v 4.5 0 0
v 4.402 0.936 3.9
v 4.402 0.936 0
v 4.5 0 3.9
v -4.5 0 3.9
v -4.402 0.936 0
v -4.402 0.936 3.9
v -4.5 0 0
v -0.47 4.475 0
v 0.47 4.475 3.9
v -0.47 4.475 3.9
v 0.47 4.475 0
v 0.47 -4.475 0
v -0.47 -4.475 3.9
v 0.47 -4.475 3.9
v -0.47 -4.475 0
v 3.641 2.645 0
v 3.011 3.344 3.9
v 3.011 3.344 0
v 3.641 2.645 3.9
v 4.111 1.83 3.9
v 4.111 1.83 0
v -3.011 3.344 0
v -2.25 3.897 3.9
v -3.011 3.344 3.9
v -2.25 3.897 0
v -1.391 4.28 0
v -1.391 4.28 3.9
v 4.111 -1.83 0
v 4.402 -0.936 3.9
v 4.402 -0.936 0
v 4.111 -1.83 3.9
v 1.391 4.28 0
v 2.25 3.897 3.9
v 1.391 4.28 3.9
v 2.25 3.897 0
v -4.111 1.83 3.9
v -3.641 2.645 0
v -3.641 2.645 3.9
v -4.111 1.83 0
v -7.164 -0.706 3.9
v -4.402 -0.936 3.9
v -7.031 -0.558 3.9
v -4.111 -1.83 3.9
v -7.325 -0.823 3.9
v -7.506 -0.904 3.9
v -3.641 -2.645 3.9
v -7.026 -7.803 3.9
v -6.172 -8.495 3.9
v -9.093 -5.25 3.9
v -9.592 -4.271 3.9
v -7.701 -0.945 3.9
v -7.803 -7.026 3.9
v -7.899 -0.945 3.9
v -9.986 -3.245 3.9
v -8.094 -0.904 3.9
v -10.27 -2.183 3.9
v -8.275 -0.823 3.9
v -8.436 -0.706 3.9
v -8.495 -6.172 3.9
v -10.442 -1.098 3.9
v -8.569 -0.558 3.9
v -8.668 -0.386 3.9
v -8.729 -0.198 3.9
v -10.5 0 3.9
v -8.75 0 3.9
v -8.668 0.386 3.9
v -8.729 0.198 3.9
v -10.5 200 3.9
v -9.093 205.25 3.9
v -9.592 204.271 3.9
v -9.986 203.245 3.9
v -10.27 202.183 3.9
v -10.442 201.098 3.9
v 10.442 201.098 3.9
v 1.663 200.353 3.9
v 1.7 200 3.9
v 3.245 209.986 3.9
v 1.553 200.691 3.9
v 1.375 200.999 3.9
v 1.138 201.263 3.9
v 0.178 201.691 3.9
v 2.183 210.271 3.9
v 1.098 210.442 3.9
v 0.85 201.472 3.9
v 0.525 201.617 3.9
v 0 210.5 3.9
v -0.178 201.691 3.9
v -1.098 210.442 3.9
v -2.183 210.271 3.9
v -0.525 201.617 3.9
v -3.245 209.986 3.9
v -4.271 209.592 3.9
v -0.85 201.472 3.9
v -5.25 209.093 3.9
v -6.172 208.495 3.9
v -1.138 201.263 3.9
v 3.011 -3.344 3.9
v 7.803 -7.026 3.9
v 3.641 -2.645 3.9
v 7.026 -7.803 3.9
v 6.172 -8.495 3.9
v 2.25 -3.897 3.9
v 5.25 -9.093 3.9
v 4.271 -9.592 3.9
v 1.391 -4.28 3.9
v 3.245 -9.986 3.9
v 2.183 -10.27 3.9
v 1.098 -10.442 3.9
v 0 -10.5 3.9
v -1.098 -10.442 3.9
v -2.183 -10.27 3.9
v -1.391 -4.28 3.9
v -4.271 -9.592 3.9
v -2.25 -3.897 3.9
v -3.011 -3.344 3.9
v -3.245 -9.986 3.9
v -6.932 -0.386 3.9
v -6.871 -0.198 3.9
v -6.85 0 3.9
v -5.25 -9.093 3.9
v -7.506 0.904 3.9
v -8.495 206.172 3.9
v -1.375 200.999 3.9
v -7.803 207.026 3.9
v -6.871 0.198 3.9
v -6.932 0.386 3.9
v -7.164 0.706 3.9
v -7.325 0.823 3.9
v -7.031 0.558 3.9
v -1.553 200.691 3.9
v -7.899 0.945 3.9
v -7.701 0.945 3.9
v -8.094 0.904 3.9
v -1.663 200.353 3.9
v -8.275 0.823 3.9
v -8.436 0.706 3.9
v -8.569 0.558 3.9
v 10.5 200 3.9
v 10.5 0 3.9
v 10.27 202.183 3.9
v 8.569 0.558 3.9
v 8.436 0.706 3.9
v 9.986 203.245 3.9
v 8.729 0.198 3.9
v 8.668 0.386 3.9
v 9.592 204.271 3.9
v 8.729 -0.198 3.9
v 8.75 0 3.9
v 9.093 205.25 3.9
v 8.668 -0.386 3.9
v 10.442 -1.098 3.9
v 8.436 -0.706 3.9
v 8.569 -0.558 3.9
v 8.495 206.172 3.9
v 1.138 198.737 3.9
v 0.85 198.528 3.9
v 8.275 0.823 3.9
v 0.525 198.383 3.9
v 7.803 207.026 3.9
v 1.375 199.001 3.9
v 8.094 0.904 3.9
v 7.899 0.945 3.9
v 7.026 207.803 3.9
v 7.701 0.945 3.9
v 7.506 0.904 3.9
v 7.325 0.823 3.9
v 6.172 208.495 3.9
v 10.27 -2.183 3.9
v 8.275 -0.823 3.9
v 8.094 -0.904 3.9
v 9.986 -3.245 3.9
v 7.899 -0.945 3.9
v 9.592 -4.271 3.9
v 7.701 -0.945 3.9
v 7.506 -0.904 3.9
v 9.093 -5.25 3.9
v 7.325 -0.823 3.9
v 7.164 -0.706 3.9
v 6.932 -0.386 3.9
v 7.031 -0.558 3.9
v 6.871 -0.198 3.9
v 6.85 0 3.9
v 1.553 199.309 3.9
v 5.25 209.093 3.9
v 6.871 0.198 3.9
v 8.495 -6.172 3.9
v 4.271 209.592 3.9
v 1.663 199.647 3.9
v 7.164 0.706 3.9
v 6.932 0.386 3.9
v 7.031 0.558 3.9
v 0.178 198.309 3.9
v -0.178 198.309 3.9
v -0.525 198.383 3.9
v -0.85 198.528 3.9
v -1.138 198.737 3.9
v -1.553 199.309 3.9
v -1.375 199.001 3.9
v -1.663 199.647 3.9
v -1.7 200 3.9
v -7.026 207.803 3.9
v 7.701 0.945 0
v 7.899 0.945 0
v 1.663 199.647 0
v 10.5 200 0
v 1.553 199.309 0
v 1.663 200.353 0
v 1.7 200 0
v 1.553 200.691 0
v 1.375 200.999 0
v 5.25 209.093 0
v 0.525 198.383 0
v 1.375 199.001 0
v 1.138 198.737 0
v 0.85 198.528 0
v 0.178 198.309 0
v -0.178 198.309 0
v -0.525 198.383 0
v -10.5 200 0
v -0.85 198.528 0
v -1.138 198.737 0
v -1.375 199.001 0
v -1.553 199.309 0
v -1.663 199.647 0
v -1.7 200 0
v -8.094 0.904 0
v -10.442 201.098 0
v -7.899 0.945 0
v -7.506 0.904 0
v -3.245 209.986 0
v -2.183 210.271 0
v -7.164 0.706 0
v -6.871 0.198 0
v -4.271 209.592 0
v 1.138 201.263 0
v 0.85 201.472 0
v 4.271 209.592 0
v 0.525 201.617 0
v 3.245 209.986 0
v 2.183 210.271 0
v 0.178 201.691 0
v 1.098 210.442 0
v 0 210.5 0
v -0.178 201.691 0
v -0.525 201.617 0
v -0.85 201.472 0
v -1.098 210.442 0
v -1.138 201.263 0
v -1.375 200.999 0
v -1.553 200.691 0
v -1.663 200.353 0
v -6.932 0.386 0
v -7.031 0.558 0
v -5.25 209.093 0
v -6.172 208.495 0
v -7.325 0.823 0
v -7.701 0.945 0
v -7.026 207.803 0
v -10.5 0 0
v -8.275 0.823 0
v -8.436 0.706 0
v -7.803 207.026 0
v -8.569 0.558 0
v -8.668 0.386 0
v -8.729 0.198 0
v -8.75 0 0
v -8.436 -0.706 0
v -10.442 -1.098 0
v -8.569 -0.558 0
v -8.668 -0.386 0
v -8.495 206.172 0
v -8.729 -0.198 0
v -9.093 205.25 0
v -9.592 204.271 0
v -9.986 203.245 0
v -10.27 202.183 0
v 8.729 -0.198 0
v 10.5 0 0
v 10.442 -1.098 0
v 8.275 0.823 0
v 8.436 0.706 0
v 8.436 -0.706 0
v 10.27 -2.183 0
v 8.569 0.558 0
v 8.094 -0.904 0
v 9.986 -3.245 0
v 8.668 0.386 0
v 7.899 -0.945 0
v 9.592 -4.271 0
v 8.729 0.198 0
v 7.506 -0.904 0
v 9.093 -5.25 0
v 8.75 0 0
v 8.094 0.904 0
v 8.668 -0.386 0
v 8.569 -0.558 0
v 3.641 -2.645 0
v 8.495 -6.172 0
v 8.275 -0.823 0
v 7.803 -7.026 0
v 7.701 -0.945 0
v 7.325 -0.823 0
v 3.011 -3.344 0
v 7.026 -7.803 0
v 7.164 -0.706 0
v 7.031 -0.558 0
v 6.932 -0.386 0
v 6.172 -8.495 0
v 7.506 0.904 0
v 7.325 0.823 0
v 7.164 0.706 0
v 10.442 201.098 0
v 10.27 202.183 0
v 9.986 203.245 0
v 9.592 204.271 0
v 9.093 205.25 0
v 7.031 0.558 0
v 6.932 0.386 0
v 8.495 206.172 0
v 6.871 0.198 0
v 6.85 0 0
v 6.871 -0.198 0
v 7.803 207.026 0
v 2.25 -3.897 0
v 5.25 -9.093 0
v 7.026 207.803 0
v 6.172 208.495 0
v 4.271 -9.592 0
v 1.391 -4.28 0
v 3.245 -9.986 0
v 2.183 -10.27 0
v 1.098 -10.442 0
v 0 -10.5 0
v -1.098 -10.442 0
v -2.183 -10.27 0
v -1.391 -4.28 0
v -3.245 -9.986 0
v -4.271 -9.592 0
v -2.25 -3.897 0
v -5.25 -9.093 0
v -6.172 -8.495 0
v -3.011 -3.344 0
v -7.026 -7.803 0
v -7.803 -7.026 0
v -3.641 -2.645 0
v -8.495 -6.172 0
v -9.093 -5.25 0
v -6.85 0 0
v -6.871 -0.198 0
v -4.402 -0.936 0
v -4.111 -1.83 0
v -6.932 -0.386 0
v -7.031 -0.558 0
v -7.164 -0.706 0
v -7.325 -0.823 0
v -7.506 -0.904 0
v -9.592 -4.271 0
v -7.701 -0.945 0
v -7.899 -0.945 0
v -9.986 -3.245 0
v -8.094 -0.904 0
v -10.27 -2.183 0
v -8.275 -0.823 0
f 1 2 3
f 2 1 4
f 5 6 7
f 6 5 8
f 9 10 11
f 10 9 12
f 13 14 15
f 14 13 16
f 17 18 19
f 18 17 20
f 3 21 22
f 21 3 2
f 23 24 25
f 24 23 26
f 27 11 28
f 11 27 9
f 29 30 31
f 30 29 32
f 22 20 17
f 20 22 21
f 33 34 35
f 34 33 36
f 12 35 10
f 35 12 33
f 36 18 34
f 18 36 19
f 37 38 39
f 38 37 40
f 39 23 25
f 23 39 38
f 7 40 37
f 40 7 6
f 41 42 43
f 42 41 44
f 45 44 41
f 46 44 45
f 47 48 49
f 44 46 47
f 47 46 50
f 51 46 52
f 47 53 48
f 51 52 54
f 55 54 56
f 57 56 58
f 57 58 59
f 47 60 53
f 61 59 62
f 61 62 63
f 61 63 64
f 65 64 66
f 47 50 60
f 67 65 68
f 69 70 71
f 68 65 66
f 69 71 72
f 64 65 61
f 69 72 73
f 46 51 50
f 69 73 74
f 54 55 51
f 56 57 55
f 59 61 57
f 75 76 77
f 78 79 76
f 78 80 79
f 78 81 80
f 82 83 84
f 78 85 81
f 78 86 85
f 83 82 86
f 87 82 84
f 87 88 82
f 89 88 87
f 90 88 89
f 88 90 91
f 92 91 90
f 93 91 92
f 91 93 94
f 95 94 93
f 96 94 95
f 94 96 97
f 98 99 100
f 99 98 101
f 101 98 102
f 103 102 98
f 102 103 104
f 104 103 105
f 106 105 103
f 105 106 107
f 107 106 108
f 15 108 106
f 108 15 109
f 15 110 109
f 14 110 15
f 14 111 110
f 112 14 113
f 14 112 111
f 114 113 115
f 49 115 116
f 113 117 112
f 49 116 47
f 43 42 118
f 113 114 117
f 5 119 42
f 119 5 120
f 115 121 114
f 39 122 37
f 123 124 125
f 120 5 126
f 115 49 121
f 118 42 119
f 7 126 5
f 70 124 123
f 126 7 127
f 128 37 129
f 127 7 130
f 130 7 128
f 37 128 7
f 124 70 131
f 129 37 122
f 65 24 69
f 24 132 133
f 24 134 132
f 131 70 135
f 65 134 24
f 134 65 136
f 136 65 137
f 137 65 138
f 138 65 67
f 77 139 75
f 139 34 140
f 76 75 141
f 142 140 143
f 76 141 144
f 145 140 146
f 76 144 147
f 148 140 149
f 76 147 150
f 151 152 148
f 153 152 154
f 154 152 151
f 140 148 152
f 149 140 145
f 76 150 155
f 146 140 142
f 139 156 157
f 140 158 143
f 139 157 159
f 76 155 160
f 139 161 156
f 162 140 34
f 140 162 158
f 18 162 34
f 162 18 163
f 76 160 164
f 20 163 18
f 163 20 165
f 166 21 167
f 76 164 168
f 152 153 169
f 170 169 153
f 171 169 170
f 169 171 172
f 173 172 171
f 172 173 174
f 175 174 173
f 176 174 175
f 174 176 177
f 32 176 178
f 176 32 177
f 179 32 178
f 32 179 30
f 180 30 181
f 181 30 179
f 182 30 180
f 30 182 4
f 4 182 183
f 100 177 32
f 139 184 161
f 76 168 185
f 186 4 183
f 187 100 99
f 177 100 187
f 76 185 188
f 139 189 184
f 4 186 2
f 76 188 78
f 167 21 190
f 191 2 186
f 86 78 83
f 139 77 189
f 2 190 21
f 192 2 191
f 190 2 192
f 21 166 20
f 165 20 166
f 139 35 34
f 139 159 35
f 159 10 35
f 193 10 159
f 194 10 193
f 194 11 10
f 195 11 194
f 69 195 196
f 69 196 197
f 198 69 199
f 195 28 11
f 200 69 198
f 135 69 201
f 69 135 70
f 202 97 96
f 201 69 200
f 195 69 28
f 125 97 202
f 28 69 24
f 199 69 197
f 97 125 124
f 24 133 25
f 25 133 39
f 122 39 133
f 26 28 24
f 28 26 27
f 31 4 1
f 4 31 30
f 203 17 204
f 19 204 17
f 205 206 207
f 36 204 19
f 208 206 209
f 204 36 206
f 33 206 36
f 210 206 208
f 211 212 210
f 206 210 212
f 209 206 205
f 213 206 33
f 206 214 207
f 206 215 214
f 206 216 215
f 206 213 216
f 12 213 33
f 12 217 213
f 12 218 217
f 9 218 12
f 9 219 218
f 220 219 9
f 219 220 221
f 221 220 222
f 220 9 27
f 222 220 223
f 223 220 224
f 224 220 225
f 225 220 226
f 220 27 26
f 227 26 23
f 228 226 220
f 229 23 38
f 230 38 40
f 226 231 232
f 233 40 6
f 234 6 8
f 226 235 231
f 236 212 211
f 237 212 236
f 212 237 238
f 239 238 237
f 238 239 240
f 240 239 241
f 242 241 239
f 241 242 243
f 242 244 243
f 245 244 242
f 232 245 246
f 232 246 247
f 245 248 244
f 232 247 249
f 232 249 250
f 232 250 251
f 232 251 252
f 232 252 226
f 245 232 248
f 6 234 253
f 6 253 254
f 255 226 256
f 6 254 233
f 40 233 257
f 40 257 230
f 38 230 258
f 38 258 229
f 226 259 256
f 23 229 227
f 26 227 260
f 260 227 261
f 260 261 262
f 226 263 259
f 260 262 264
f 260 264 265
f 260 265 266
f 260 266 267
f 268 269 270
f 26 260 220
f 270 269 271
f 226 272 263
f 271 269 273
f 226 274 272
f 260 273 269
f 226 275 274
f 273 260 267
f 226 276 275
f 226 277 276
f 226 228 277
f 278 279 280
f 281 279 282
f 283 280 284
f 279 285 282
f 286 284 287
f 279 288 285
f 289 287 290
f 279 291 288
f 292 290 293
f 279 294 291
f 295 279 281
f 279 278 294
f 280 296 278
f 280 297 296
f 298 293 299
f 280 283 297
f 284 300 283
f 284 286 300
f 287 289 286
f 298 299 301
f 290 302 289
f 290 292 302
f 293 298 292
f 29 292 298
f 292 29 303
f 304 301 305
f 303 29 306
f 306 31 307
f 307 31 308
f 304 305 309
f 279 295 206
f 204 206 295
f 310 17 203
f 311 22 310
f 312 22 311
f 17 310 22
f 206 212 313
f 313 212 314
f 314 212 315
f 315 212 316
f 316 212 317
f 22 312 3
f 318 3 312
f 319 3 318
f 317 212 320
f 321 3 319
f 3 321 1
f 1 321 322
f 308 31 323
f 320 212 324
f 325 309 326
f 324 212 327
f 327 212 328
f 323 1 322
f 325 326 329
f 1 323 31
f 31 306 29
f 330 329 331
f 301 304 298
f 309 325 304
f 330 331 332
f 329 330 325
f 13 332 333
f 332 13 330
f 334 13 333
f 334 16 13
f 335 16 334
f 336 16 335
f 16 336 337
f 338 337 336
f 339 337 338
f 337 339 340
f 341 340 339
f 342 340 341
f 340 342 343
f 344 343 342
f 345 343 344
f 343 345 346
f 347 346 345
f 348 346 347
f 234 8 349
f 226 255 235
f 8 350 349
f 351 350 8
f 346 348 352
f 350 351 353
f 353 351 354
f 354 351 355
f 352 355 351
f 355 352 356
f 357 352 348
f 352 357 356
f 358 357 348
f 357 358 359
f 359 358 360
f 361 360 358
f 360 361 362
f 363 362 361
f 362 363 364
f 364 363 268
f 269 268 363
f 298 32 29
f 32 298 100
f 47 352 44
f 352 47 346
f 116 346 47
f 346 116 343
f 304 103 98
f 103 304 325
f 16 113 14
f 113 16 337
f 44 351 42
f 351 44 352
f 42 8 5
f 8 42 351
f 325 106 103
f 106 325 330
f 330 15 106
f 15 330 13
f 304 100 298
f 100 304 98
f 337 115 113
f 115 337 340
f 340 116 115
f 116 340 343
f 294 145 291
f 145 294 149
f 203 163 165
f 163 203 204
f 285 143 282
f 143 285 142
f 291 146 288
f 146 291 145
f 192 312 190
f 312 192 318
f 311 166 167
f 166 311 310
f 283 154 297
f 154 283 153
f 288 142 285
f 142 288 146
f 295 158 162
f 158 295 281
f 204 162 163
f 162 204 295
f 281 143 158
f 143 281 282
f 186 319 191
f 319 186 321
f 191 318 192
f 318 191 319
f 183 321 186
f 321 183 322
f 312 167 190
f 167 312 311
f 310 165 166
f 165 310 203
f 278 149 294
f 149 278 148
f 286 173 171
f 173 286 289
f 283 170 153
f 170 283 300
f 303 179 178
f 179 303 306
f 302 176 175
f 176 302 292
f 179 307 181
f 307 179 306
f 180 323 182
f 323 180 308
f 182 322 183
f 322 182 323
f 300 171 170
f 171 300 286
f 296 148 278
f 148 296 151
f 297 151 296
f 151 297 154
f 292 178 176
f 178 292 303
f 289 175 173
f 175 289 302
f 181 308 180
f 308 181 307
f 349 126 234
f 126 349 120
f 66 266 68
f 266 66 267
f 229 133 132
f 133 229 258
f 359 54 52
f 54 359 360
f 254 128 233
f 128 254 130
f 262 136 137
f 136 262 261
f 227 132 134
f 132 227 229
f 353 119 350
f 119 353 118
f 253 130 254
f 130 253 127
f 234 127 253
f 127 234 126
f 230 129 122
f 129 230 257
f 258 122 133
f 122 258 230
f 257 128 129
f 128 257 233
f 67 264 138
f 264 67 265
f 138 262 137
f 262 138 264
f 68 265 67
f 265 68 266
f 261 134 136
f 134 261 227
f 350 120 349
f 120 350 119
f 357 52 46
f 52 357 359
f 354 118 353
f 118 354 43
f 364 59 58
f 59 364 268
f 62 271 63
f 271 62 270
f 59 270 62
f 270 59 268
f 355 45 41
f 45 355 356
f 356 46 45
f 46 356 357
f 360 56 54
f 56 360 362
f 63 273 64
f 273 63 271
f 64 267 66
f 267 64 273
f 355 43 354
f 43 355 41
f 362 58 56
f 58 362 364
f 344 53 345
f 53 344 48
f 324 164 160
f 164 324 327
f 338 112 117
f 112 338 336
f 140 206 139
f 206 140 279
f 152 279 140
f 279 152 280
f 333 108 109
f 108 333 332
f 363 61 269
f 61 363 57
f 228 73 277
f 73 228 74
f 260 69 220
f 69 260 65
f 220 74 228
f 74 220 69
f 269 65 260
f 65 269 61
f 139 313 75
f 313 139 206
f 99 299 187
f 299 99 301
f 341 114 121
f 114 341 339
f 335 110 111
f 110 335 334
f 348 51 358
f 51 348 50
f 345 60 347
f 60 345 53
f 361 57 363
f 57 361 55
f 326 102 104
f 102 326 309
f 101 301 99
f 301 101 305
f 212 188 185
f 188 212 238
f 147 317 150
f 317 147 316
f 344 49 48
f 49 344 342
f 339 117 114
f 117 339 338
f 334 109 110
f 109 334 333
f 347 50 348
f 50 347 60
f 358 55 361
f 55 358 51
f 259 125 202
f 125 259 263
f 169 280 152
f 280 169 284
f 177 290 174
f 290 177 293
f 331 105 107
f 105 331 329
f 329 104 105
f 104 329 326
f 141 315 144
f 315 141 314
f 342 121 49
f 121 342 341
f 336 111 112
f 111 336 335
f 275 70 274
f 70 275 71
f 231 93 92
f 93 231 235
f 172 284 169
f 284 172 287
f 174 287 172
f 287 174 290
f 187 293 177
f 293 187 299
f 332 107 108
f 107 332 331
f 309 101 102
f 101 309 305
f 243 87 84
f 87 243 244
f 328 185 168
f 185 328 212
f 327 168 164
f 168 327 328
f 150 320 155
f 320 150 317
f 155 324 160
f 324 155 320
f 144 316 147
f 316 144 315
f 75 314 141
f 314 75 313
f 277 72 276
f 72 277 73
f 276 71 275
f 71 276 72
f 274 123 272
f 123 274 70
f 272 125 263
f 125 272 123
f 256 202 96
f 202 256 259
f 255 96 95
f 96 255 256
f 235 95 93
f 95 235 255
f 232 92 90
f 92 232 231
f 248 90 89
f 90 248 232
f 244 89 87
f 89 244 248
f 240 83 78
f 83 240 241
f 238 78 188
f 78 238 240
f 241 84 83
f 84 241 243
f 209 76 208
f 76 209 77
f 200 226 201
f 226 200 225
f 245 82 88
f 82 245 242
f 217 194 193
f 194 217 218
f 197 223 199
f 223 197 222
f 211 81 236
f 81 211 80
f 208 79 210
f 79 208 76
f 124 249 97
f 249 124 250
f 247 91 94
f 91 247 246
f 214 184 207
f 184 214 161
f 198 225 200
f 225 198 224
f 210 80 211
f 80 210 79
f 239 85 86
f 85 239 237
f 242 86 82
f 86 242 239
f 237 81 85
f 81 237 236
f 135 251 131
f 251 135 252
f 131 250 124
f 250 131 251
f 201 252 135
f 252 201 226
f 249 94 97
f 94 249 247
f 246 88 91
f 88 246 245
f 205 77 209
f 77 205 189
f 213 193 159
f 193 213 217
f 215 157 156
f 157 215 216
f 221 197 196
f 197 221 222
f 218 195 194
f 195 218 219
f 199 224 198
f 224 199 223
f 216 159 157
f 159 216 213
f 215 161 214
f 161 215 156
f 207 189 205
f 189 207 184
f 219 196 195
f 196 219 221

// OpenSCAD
//general
$fn = 30;                  //convexity of general curved faces
thickness = 3.9;             //thickness of arm

//circular servo horn measurements
horn_diameter = 21;             //diameter of the circular horn
horn_center_hole = 9;          //diameter of the center hole (for screw)
horn_outer_hole_diameters = 1.9;  //diameter of the outer holes for screwing down horn
horn_outer_holes_center_dist = 7.8;//distance from center to the outer holes

//arm specific stuff
arm_length = 200;//155;               //horn center to horn center distance for arm length

free_turning3mm = 3.4;          //diameter of hole for free turning motion

module horn(){
   cylinder(d=horn_center_hole, h=thickness);
   translate([horn_outer_holes_center_dist, 0, 0])
   cylinder(d=horn_outer_hole_diameters, h=thickness);
   translate([-horn_outer_holes_center_dist, 0, 0])
   cylinder(d=horn_outer_hole_diameters, h=thickness);
}

difference(){
   hull(){
      cylinder(d=horn_diameter,h=thickness, $fn = 60);
      translate([0,arm_length,0])
      cylinder(d=horn_diameter,h=thickness, $fn = 60);
   }
   horn();
   translate([0,arm_length,0])
   cylinder(d=free_turning3mm, h=thickness);
}
